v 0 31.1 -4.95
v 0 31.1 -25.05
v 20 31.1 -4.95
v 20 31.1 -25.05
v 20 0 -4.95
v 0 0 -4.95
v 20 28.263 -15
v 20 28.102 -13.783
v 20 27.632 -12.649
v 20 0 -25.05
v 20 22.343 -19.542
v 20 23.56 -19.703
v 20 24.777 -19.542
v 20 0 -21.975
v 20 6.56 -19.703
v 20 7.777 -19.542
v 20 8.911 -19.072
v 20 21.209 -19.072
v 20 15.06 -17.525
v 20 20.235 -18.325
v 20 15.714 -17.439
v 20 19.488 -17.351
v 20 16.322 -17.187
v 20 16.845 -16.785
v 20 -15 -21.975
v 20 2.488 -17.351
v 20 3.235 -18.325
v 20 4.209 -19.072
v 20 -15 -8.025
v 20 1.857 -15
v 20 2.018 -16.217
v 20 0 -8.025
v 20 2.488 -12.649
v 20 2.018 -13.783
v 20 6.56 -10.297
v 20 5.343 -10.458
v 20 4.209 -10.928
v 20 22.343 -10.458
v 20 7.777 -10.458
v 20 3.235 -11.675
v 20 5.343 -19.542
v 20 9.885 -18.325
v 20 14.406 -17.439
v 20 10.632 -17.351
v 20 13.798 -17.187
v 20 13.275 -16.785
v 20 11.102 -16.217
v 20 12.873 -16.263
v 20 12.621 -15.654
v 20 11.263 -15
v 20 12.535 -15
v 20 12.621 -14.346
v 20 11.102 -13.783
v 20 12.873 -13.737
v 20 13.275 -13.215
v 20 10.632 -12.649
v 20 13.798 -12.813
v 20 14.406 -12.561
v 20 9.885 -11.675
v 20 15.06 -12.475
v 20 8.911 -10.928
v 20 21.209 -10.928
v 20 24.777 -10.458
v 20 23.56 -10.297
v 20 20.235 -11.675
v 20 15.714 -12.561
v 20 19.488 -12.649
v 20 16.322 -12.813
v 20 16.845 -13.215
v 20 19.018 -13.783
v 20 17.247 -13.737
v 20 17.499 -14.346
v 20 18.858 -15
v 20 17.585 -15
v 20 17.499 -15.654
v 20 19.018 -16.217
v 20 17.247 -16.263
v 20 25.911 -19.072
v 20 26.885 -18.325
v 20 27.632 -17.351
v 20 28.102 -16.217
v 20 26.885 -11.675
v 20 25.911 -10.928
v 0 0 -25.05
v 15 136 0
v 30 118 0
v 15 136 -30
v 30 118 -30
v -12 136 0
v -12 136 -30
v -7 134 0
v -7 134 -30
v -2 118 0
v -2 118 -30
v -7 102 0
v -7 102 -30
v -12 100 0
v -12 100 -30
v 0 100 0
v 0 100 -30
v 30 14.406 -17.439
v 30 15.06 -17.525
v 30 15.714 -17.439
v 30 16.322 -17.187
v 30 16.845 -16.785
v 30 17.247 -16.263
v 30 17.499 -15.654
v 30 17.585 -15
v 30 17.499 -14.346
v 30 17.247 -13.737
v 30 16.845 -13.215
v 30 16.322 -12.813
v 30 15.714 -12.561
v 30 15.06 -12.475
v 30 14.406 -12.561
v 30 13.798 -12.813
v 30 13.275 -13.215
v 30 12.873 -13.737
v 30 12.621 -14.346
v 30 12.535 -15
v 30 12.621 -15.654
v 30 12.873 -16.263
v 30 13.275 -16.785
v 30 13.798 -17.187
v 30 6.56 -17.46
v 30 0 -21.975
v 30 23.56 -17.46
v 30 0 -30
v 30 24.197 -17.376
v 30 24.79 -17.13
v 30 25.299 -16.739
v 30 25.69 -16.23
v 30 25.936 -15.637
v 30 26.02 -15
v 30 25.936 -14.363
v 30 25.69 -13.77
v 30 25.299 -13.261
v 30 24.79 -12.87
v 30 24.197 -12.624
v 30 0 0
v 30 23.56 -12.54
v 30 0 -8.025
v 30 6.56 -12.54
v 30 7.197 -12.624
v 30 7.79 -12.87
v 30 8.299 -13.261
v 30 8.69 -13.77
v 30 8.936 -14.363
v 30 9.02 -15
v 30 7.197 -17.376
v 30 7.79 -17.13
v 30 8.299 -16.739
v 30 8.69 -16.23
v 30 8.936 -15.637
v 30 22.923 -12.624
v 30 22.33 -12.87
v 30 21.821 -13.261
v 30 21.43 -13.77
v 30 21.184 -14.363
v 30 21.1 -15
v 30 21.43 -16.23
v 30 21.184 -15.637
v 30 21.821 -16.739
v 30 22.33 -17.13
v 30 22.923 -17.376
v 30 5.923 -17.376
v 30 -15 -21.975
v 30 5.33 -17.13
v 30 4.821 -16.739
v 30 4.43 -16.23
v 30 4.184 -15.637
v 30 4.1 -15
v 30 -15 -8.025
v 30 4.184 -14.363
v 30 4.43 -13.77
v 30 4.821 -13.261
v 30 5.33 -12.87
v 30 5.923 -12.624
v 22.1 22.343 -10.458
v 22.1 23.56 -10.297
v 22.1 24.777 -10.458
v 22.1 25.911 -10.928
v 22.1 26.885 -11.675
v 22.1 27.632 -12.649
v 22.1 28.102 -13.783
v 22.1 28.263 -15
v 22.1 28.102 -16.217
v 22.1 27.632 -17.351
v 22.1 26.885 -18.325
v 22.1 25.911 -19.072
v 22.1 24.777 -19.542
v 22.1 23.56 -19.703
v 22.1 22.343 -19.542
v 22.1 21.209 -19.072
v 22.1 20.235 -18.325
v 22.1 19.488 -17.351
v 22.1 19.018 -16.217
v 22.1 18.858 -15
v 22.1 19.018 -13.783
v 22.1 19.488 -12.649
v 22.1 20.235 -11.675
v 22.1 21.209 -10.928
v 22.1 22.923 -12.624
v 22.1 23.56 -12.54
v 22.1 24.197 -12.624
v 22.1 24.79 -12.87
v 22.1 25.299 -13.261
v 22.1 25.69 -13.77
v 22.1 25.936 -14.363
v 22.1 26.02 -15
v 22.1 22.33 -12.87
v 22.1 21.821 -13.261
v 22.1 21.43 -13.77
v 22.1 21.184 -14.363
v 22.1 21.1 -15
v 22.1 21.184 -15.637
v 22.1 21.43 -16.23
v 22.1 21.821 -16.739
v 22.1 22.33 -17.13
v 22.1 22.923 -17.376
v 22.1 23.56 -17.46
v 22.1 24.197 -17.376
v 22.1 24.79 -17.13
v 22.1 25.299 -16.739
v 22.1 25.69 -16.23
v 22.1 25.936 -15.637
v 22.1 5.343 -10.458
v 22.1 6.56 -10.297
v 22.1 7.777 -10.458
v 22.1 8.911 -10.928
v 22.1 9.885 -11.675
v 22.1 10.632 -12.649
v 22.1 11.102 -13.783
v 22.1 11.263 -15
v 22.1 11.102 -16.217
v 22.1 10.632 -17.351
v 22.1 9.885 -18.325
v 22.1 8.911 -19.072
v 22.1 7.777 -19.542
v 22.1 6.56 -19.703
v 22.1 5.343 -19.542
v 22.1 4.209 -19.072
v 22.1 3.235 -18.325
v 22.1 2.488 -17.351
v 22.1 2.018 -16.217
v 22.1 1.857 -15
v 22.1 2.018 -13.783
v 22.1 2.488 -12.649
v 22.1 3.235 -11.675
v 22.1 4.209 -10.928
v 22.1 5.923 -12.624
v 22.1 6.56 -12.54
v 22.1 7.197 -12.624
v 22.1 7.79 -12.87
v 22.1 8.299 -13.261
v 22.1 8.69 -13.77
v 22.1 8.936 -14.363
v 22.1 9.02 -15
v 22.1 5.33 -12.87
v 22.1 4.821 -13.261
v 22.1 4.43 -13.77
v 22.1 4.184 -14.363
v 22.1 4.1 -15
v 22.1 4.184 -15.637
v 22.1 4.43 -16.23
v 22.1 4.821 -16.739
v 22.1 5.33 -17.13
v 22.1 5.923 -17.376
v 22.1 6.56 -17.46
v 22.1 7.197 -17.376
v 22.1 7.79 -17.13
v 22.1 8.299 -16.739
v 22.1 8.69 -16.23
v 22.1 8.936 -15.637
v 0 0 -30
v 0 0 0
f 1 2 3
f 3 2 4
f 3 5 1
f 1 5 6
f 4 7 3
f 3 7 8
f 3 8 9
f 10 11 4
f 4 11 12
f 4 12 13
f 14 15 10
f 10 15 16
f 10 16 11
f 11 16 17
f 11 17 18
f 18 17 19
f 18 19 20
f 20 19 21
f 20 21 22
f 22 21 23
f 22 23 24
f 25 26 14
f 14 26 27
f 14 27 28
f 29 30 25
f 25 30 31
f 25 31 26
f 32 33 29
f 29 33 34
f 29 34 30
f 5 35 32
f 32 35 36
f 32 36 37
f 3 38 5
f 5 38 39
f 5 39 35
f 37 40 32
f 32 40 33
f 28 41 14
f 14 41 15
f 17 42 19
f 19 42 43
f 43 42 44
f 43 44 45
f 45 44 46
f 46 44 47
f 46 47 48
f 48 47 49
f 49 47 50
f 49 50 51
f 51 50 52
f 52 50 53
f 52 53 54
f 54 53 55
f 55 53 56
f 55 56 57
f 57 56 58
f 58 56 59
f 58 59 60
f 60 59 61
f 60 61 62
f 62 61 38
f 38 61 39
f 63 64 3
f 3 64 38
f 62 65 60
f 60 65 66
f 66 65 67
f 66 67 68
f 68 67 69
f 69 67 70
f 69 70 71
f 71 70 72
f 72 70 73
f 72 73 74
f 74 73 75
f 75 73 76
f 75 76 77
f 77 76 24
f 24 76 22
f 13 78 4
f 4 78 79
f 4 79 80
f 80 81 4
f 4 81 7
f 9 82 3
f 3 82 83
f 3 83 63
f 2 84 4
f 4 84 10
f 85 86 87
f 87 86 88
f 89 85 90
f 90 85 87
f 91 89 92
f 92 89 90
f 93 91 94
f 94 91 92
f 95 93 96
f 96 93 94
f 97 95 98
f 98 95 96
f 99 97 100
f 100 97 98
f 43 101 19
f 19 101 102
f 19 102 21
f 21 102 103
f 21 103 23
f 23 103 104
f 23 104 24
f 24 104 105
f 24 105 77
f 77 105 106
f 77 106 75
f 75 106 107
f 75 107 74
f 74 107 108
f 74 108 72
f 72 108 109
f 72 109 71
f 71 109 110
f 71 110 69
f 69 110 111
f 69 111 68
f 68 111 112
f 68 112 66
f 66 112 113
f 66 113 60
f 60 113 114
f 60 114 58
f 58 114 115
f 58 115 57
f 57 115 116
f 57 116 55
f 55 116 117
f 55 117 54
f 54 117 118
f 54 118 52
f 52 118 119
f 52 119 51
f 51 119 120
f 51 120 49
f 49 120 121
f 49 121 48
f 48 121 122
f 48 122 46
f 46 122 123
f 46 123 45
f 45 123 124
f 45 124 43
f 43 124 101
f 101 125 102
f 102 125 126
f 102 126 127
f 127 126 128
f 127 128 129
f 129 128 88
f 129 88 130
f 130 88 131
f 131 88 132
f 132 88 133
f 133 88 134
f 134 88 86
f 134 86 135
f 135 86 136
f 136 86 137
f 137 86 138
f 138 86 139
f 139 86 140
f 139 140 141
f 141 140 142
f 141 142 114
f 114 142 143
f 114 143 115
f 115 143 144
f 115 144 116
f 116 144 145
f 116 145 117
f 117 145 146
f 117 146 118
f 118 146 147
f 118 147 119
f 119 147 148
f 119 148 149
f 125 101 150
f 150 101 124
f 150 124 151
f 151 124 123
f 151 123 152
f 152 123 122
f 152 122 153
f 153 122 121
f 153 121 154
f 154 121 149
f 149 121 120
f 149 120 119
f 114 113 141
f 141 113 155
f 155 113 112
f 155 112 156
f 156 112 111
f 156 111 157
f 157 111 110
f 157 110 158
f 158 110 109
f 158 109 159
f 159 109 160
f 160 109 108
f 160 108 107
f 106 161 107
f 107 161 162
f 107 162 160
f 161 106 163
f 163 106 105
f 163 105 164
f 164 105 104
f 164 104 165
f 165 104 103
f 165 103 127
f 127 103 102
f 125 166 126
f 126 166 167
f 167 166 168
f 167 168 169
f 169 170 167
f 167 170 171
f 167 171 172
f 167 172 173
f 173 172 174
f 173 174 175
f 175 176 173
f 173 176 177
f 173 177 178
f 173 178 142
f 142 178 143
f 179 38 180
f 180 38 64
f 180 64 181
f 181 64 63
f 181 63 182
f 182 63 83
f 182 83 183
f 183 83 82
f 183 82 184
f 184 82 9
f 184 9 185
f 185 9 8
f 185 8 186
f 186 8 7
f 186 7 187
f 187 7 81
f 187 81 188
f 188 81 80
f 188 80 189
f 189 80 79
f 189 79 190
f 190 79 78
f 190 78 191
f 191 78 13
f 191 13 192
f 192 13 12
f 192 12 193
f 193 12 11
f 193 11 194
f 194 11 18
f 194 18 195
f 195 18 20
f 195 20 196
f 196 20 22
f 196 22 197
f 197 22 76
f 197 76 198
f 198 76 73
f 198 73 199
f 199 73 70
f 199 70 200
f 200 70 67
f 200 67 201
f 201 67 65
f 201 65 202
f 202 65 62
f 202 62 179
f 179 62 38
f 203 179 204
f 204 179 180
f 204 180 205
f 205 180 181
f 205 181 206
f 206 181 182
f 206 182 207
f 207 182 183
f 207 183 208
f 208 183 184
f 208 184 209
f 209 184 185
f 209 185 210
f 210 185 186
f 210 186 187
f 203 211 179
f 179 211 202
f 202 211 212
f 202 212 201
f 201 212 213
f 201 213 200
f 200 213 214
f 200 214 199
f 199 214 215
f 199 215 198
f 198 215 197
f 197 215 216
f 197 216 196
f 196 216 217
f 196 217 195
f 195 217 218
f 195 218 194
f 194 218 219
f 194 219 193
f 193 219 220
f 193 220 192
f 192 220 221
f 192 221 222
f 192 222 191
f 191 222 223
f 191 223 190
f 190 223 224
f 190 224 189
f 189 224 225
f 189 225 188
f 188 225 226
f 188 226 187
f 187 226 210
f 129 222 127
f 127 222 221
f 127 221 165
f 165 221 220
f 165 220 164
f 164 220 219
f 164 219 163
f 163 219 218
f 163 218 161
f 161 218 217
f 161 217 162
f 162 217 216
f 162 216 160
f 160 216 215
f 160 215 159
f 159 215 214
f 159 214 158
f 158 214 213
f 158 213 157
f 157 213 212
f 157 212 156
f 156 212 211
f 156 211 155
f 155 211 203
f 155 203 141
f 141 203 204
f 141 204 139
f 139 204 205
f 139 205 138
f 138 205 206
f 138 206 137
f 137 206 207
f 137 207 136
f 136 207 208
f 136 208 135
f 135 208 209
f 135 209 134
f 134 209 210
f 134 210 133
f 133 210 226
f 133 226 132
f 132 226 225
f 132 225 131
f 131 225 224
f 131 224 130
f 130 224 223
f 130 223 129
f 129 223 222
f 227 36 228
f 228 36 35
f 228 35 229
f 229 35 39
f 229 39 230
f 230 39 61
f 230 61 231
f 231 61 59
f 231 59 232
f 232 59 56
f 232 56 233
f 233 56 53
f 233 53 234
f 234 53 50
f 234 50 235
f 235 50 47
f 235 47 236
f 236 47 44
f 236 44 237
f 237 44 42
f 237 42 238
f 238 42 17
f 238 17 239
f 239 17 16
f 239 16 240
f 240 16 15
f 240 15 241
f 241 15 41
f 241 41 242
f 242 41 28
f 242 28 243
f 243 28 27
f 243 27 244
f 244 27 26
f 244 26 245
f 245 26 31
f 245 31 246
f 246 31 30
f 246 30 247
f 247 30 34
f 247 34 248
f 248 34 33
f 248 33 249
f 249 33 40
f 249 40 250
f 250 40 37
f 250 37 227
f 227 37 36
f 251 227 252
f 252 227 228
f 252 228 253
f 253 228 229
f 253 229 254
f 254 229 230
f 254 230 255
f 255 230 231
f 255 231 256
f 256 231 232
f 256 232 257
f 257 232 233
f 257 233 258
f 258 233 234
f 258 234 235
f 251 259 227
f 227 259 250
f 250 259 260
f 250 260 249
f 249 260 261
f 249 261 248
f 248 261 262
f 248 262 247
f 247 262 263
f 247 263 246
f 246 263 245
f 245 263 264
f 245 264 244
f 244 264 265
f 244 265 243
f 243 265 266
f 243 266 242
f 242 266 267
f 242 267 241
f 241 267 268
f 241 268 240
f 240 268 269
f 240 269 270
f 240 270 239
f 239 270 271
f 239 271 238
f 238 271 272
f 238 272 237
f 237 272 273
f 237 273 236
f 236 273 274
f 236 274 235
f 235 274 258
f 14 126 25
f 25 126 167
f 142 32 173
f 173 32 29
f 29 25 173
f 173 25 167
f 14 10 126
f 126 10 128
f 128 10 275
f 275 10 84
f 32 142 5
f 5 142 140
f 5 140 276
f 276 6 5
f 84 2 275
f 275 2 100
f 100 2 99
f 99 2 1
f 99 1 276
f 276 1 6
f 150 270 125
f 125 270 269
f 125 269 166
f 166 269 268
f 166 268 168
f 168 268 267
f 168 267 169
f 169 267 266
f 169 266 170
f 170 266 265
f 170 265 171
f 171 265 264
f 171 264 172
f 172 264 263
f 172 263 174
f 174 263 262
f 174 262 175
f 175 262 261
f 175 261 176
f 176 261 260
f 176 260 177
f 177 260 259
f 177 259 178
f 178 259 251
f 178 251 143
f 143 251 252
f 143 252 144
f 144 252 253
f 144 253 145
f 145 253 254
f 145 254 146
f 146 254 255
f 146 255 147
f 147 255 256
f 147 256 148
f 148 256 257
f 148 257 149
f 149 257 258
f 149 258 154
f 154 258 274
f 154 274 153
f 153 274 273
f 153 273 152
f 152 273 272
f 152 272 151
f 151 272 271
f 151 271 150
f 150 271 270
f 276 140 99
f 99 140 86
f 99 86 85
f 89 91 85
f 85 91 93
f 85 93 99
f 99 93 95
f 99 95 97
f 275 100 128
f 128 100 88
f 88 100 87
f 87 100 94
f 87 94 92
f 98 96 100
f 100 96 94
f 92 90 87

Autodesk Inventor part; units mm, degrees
ref_plane "YZ Plane" through (0, 0, 0) normal (1, 0, 0) x (0, 1, 0)
ref_plane "XZ Plane" through (0, 0, 0) normal (0, 1, 0) x (-1, 0, 0)
ref_plane "XY Plane" through (0, 0, 0) normal (0, 0, 1) x (1, 0, 0)
sketch "Sketch1" plane through (0, 0, 0) normal (0, 0, 1) x (1, 0, 0)
  line L0 (0, 0) -> (25, 0)
  line L1 (25, 0) -> (25, 40)
  line L2 (25, 40) -> (0, 40)
  line L3 (0, 40) -> (0, 0)
  dimension "d1" = 25
  dimension "d2" = 40
  dimension "d3" = 25
extrude "Extrusion1" add sketch "Sketch1" against normal blind 30
sketch "Sketch2" plane through (25, 0, 0) normal (1, 0, 0) x (0, 0, -1)
  line L0 (0, 0) -> (30, 0) projected
  circle A0 centre (15, 6.56) radius 2.46
extrude "Extrusion2" cut sketch "Sketch2" against normal blind 30
sketch "Sketch3" plane through (0, 0, 0) normal (-1, 0, 0) x (0, 0, 1)
  line L0 (0, 0) -> (-30, 0) projected
  line L1 (-25.05, 0) -> (-4.95, 0)
  line L2 (-4.95, 0) -> (-4.95, 33.12)
  line L3 (-4.95, 33.12) -> (-25.05, 33.12)
  line L4 (-25.05, 33.12) -> (-25.05, 0)
  dimension "d11" = 20.1
extrude "Extrusion3" cut sketch "Sketch3" against normal blind 20
sketch "Sketch4" plane through (0, 0, 0) normal (0, -1, 0) x (1, 0, 0)
  line L0 (20, -4.95) -> (20, -25.05) projected
  line L1 (20, -15) -> (25, -15)
  line L2 (25, 0) -> (25, -30) projected
  line L3 (20, -8.025) -> (25, -8.025)
  line L4 (25, -8.025) -> (25, -21.975)
  line L5 (25, -21.975) -> (20, -21.975)
  line L6 (20, -21.975) -> (20, -8.025)
  line L7 (20, -8.025) -> (25, -21.975) construction
  line L8 (25, -8.025) -> (20, -21.975) construction
  line L9 (25, -12.54) -> (25, -17.46) projected
  point P0 (0, 0)
  point P1 (22.5, -15)
  dimension "d14" = 13.95
extrude "Extrusion4" add sketch "Sketch4" along normal blind 15
sketch "Sketch5" plane through (20, 0, 0) normal (-1, 0, 0) x (0, 0, 1)
  circle A0 centre (-15, 6.56) radius 2.46 projected
  circle A1 centre (-15, 6.56) radius 4.7025
  circle A2 centre (-15, 6.56) radius 2.46 projected
  circle A3 centre (-15, 6.56) radius 2.46
  point P0 (0, 0)
  dimension "d17" = 9.405
extrude "Extrusion5" cut sketch "Sketch5" against normal blind 2.1
sketch "Sketch6" plane through (25, 0, 0) normal (1, 0, 0) x (0, 0, -1)
  circle A0 centre (15, 6.56) radius 4.7025 projected
  line L0 (15, 6.56) -> (15, 23.56)
  circle A1 centre (15, 23.56) radius 2.46
  point P0 (0, 0)
  dimension "d20" = 17
  dimension "d21" = 4.92
extrude "Extrusion6" cut sketch "Sketch6" against normal blind 10 contours A1
sketch "Sketch7" plane through (20, 0, 0) normal (-1, 0, 0) x (0, 0, 1)
  circle A0 centre (-15, 23.56) radius 2.46 projected
  circle A1 centre (-15, 23.56) radius 4.7025
  point P0 (0, 0)
  dimension "d24" = 9.405
extrude "Extrusion7" cut sketch "Sketch7" against normal blind 2.1
sketch "Sketch9" plane through (25, 0, 0) normal (1, 0, 0) x (0, 0, -1)
  circle A0 centre (15, 6.56) radius 2.46 projected
  circle A1 centre (15, 6.56) radius 2.46
  circle A2 centre (15, 23.56) radius 2.46 projected
  circle A3 centre (15, 23.56) radius 2.46
  line L0 (30, 40) -> (30, 0) projected
  line L1 (30, 0) -> (30, 40)
  line L2 (30, 40) -> (0, 40)
  line L3 (0, 40) -> (0, 0)
  line L4 (0, 0) -> (8.025, 0) projected
  line L5 (21.975, 0) -> (21.975, -15)
  line L6 (21.975, -15) -> (8.025, -15)
  line L7 (8.025, -15) -> (8.025, 0)
  line L8 (0, 0) -> (8.025, 0)
  line L9 (21.975, 0) -> (30, 0)
extrude "Extrusion8" add sketch "Sketch9" along normal blind 5
sketch "Sketch10" plane through (0, 40, 0) normal (0, 1, 0) x (1, 0, 0)
  line L0 (0, 30) -> (30, 30) projected
  line L1 (30, 0) -> (0, 0) projected
  line L2 (0, 30) -> (30, 30)
  line L3 (30, 30) -> (30, 0)
  line L4 (30, 0) -> (0, 0)
  line L5 (0, 0) -> (0, 30)
extrude "Extrusion9" add sketch "Sketch10" along normal blind 30
sketch "Sketch12" plane through (30, 0, 0) normal (1, 0, 0) x (0, 0, -1)
  circle A0 centre (15, 6.56) radius 2.46 projected
  line L0 (15, 6.56) -> (15, 15.06)
  circle A1 centre (15, 15.06) radius 2.525
  point P0 (0, 0)
  dimension "d31" = 8.5
  dimension "d33" = 5.05
extrude "Extrusion10" cut sketch "Sketch12" against normal blind 30 contours A1
sketch "Sketch14" plane through (0, 0, 0) normal (0, 0, 1) x (1, 0, 0)
  line L0 (30, 70) -> (0, 70) projected
  line L1 (0, 70) -> (0, 85)
  line L2 (30, 0) -> (30, 70) projected
  line L3 (30, 118) -> (30, 70)
  line L4 (30, 105) -> (30, 100)
  line L5 (-7, 134) -> (-12, 136)
  line L6 (-7, 102) -> (-12, 100)
  line L7 (-7, 102) -> (-2, 118)
  line L8 (-2, 118) -> (-7, 134)
  line L9 (15, 136) -> (30, 118)
  line L10 (-12, 136) -> (15, 136)
  line L11 (0, 85) -> (0, 100)
  line L12 (0, 100) -> (-12, 100)
  point P0 (0, 0)
  dimension "d82" = 12
extrude "Extrusion12" add sketch "Sketch14" against normal blind 30
sketch "Sketch15" plane through (0, 0, -25.05) normal (-1, 0, 0) x (0, 0, 1)
  line L0 (0, 33.12) -> (20.1, 33.12) projected
  line L1 (20.1, 33.12) -> (20.1, 0) projected
  line L2 (0, 33.12) -> (20.1, 33.12)
  line L3 (20.1, 33.12) -> (20.1, 31.1)
  line L4 (20.1, 31.1) -> (0, 31.1)
  line L5 (0, 31.1) -> (0, 33.12)
  point P0 (25.05, 0)
  dimension "d57" = 2.02
extrude "Extrusion13" add sketch "Sketch15" against normal blind 20
properties part number "rec_a_32mm_x_30mm"
